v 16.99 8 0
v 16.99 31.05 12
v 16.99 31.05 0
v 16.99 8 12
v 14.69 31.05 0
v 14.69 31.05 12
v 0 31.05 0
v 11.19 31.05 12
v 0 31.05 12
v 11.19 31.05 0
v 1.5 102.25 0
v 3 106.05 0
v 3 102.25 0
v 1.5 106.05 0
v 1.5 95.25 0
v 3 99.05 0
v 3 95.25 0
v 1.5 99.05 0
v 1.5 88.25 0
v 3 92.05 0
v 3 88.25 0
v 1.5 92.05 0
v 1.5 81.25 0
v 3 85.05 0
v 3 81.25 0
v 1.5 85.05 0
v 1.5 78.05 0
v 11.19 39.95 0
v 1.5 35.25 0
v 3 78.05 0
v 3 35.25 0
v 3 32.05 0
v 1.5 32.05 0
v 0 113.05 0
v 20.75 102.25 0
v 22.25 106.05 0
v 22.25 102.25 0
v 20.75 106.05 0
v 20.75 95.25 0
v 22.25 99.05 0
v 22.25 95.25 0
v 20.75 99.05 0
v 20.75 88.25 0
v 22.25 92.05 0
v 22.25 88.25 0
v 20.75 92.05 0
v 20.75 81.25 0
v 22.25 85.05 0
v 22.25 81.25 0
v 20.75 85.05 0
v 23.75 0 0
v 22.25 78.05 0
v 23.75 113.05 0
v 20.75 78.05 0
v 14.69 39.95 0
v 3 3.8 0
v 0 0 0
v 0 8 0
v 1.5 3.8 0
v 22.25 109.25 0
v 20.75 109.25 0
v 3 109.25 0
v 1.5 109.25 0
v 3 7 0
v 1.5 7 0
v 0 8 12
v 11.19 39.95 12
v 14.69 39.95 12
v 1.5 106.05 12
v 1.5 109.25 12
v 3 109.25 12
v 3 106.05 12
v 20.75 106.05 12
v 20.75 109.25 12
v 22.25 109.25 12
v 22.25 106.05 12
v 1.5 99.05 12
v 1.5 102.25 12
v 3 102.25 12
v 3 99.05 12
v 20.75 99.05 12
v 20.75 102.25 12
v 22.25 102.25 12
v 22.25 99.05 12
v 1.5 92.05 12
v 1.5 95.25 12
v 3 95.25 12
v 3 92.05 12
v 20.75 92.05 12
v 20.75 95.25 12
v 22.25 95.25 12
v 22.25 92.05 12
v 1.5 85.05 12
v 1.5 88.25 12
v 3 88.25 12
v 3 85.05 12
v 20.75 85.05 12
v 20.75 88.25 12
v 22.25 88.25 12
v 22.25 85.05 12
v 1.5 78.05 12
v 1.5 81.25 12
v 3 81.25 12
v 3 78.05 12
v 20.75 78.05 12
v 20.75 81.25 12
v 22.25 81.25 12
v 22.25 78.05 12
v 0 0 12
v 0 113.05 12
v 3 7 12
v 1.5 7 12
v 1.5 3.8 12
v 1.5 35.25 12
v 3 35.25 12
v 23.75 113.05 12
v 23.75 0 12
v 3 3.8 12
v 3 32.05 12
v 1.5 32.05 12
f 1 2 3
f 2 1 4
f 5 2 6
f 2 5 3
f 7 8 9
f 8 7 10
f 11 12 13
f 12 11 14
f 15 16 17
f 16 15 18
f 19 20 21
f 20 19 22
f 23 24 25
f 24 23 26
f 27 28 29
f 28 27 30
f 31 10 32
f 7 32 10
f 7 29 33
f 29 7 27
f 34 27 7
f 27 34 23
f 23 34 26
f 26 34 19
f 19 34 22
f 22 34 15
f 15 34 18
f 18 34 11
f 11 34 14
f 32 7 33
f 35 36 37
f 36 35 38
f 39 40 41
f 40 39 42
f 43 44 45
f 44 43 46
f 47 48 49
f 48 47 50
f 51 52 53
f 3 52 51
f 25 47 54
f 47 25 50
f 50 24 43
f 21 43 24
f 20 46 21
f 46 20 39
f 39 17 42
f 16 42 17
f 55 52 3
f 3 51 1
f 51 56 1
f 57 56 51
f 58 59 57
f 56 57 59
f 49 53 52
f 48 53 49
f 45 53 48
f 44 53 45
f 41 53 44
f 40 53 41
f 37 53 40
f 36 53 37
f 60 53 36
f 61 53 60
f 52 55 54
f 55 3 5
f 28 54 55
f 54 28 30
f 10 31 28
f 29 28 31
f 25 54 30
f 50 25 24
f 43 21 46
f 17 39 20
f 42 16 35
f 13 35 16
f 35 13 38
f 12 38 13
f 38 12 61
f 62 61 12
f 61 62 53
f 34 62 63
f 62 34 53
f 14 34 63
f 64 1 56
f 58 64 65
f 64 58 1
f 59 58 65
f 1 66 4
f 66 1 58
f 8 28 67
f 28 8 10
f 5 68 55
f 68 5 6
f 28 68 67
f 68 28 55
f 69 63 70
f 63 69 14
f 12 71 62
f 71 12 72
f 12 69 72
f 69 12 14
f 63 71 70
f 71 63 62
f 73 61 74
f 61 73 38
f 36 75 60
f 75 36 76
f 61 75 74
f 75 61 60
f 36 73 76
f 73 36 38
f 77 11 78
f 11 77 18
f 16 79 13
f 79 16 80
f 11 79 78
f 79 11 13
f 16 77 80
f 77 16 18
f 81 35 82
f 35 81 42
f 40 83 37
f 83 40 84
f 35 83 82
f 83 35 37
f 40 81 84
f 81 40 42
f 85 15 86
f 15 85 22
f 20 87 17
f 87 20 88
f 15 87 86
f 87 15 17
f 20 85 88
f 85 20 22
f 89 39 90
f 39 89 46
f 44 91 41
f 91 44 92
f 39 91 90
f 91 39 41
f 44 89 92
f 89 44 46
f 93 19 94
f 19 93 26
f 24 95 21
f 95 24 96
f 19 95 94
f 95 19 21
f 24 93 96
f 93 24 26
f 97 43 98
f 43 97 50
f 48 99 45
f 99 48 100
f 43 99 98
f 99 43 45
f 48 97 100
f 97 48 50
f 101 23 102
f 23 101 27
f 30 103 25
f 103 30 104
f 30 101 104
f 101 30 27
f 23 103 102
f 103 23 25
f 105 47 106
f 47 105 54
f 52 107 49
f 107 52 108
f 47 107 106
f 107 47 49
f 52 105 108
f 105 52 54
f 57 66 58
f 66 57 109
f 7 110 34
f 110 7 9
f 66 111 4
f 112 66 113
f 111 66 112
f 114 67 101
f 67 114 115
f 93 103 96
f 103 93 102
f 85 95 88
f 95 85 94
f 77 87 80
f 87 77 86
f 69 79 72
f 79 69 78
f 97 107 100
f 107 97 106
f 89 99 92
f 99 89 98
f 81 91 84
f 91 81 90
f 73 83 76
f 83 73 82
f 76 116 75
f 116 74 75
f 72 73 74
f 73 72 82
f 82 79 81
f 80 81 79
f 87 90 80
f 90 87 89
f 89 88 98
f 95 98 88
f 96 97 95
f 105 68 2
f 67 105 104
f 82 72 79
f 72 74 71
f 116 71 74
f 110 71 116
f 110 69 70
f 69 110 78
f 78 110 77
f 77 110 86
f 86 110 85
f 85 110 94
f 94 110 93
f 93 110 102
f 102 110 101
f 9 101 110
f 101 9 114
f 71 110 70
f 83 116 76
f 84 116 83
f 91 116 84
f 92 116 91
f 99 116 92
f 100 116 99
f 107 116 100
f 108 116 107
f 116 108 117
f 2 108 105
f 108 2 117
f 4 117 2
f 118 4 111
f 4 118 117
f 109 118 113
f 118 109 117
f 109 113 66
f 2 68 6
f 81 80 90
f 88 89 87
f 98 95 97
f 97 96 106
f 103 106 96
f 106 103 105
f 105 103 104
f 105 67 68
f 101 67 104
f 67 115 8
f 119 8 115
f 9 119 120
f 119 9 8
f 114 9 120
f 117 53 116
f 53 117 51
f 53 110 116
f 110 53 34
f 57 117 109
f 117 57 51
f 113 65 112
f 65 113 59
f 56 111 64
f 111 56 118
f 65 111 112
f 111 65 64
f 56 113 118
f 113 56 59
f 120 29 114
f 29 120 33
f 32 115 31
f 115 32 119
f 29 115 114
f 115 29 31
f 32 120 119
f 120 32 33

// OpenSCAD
//https://github.com/EricRohlfs/UltrasonicStriker
//numbers are in mm

// Part 1 of 2 for SG90 servo powered foosball gripper
// A coat hanger is bent into two different arms
// and attached via zip ties
$fn=50;
servoHornLength = 34; //adjust if you have different horn size

hornStrapWidth = 1.5; // adjust if zip ties don't fit
hornStrapDepth = 2.7; //adjust if zip ties groves need to be deeper

//Tweak these numbers if necessary, the largest positive number is closest to coat hanger hole
servoHornZipTieChannelPlacement= [-9, -3.5, 2.75, 6.25];

coatHangerDiameterActual =2;
coatHangerDiameter = coatHangerDiameterActual +.25;
coatHangerChannel = coatHangerDiameter;
coatHangerHole = coatHangerChannel +.65;

sg90Margin = .25; //cause the hole needs to be a tad bigger than the object
sg90StickerAdjustment = .2;//stickers were getting ripped off because it was too tight
sg90Width = 12.3 + sg90Margin + sg90StickerAdjustment;
sg90Depth = 22.8 + sg90Margin;
sg90Height = 26.5; //must be greater that base_h

sg90CavityBack = -sg90Width/2; //back edge reference point for the arm and zip ties
sg90CavityBackZip = sg90CavityBack - hornStrapWidth;
sg90Thick = 12.1;
sg90Insert = 17;

//main block
base_h = sg90Thick-.1;  //height
base_w = sg90Width + 11; // width
base_d = sg90Depth + 90; //46 is original; //depth


end_size = 8;
cav_x = 3.5; //cable cavity x
cav_y = 9; // cable cavity y

safe_zone = end_size + sg90Insert +cav_y *2;


module main_body(){
   cube([base_w,base_d,base_h]);
    }
  
module cableCavity(){
    cable_offset =2.3;
    translate([sg90Insert - cav_x -cable_offset,sg90Depth -.1,0])cube([cav_x,cav_y,sg90Thick]);
    
    }
    
module SG90ServoCavity(){
    //place to mount sg90 servo
    translate([-.01,end_size,0]){ 
        cube([sg90Insert,sg90Depth,sg90Thick]);
        cableCavity();
        }
    } 
   
module ServoHornZipTieChanels(){
     for(i=servoHornZipTieChannelPlacement){
         spacing = i * 1.4 ;
         translate([-(base_w * .35), -(spacing),0]) cube([hornStrapWidth, hornStrapDepth, base_h +.1],center=true);
    }
 }  
       
module ServoCableHole(){
    //tod: make hole for cable
    sg90CableHoleWidth = 3.75 + .6;//last number makes hole a bit wider than the cable
    sg90CableHoleDepth = 4.75;//seems like enough room, but can be changed
    translate([ servoCavityX , -.1 + sg90Depth/2 + sg90CableHoleDepth/2 ,0])
    cube([sg90CableHoleWidth, sg90CableHoleDepth,base_h + 1],true);
    }

//a bit diferent than the horn zip tie hole
//if the servo moves around a zip tie can be used to secure the 
//servo instead of screwing the sero to the piece.
zip_width= 3.2;
zip_depth= 1.5;
 module ZipTieHole (){
      //translate([-5 , 13,0])
     //translate([ servoCavityX - servoCavityCenterOffset -.75 , 1.7 + sg90Depth/2  ,0])
     
     rotate([0,0,0])cube([zip_depth,zip_width, base_h +.5]);
     }
 
zip_from_edge = 1.5;
difference (){
    main_body();
    //servo_horn_screw_access();
    SG90ServoCavity();
    
    //end zip tie hole for securing servo
    translate([zip_from_edge,end_size - zip_width  -1,0])ZipTieHole();
    //servo zip tie hole other side
    translate([zip_from_edge,end_size + sg90Depth +1 ,0])ZipTieHole();
    //some holes to mount to the robot
    for(i=[1:5]){
        translate([zip_from_edge,base_d -7 * i ,0])ZipTieHole();
        translate([base_w - zip_from_edge*2, base_d -7 * i ,0])ZipTieHole();
    }
    
    
}
